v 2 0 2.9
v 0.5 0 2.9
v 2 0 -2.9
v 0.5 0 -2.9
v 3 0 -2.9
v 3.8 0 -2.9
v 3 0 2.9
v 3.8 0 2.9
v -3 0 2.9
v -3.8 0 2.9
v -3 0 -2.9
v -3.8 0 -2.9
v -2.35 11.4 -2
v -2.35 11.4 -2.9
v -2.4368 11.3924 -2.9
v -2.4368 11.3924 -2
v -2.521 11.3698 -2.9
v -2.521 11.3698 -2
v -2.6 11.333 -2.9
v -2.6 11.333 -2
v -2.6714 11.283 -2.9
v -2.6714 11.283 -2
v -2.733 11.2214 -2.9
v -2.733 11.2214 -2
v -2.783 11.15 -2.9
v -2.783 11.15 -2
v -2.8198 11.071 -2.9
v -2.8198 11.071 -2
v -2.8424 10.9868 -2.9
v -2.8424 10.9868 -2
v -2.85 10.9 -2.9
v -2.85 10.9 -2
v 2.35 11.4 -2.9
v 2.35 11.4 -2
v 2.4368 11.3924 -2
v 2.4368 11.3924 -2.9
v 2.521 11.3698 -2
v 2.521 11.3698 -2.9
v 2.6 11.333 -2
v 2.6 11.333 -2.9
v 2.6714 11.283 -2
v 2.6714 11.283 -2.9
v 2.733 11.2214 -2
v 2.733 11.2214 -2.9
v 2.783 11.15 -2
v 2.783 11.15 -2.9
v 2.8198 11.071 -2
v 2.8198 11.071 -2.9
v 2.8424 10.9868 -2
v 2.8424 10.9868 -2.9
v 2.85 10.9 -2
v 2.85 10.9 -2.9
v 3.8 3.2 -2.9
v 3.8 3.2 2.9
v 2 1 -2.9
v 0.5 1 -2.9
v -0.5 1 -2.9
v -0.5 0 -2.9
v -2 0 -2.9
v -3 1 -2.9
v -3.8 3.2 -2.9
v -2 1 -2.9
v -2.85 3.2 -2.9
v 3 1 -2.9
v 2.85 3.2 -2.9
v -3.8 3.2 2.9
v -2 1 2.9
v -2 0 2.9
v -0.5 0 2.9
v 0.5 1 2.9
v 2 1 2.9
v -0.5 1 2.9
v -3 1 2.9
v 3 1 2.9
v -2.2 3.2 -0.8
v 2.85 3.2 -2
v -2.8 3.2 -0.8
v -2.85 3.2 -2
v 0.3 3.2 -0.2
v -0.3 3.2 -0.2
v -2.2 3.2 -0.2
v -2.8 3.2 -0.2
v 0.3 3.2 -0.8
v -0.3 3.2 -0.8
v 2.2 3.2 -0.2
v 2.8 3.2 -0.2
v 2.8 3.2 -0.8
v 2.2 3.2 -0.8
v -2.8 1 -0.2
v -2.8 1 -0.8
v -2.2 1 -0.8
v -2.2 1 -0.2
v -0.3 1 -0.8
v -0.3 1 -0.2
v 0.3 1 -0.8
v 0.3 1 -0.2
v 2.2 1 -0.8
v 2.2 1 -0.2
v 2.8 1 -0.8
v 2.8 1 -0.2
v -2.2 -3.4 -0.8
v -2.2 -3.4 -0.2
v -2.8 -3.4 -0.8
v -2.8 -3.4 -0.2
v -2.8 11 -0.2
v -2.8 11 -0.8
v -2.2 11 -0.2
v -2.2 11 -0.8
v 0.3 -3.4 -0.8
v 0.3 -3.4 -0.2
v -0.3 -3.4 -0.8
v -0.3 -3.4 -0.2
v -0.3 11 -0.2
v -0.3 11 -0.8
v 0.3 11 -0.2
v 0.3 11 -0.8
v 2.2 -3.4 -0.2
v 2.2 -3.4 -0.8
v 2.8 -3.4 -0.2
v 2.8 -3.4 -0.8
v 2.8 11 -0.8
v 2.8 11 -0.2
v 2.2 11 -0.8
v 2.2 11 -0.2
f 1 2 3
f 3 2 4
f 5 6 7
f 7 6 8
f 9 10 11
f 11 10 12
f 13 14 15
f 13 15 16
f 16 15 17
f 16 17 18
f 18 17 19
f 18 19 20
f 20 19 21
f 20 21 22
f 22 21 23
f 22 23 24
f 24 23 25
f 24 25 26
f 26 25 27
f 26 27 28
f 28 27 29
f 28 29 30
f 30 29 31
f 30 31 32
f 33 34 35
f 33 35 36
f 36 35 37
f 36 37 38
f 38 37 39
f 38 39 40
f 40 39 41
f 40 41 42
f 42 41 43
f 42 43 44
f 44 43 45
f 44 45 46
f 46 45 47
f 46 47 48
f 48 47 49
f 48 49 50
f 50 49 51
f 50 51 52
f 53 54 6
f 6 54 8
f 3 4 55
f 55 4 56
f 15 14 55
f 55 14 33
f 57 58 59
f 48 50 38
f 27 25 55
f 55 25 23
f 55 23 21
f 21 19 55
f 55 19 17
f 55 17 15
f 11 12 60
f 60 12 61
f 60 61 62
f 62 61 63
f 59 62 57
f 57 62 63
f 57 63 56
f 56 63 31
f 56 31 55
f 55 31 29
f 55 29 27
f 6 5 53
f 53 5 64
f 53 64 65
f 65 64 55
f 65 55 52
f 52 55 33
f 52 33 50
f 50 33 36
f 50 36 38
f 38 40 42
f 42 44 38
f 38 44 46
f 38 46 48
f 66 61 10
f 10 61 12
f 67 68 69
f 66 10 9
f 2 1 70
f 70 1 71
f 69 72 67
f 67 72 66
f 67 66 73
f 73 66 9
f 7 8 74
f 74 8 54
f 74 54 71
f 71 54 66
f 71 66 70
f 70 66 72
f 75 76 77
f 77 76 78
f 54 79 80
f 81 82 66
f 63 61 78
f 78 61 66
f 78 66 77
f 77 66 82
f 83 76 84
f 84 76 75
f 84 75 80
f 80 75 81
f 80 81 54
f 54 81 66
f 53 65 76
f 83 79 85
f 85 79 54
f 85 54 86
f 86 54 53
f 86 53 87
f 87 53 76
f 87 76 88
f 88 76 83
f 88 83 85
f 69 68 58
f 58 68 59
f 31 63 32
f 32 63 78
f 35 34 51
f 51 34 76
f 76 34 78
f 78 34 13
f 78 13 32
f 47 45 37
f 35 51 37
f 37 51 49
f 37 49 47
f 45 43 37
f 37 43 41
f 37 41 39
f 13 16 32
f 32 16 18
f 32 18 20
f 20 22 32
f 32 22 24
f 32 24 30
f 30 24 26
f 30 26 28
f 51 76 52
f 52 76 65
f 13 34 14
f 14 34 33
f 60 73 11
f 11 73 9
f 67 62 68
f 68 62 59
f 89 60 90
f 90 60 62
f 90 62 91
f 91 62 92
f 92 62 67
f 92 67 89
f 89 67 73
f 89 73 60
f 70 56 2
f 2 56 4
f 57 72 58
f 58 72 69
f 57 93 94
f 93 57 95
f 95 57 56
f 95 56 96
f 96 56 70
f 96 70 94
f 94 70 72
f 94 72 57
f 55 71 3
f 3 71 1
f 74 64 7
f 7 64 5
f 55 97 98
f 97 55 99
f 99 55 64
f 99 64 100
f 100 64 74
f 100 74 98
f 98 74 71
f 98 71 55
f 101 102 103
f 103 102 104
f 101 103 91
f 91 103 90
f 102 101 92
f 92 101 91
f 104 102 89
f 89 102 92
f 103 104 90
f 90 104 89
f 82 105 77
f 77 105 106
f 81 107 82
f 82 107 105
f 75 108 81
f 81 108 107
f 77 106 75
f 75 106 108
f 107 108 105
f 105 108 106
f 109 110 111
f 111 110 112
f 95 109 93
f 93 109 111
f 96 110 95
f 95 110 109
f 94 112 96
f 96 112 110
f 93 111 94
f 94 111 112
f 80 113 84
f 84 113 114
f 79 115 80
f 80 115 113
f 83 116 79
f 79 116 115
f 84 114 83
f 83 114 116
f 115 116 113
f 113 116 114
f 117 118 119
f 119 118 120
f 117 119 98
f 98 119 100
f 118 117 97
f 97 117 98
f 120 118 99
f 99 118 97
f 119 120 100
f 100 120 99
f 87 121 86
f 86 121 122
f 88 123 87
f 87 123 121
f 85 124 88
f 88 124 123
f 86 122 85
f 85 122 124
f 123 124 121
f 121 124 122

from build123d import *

# Parameters (mm, degrees)
CROQUIS1_W                   = 7.6
CROQUIS1_H                   = 5.8
SALIENTE_EXTRUIR1_DEPTH      = 3.2
CROQUIS2_W                   = 5.7
CROQUIS2_H                   = 0.9
SALIENTE_EXTRUIR2_DEPTH      = 8.2
REDONDEO2_R                  = 0.5
REDONDEO3_R                  = 0.5
CROQUIS3_W                   = 1
CROQUIS3_H                   = 5.8
CORTAR_EXTRUIR1_DEPTH        = 1
SALIENTE_EXTRUIR3_DEPTH      = 4.4
SALIENTE_EXTRUIR3_DEPTH_BACK = 10
CROQUIS4_W                   = 0.6
CROQUIS4_H                   = 0.6


with BuildPart() as part:
    # Croquis1 → Saliente-Extruir1 (new body)
    with BuildSketch(Plane(origin=(0, 0, 0), x_dir=(1, 0, 0), z_dir=(0, 1, 0))):
        Rectangle(CROQUIS1_W, CROQUIS1_H)
    extrude(amount=SALIENTE_EXTRUIR1_DEPTH)

    # Croquis2 → Saliente-Extruir2 (add)
    with BuildSketch(Plane(origin=(0, 3.2, 0), x_dir=(1, 0, 0), z_dir=(0, 1, 0))):
        with Locations((0, 2.45)):
            Rectangle(CROQUIS2_W, CROQUIS2_H)
    extrude(amount=SALIENTE_EXTRUIR2_DEPTH)

    # Redondeo2
    redondeo2_edges = [part.edges().sort_by_distance(p)[0] for p in [
        (2.85, 11.4, -2.45),
    ]]
    fillet(redondeo2_edges, radius=REDONDEO2_R)

    # Redondeo3
    redondeo3_edges = [part.edges().sort_by_distance(p)[0] for p in [
        (-2.85, 11.4, -2.45),
    ]]
    fillet(redondeo3_edges, radius=REDONDEO3_R)

    # Croquis3 → Cortar-Extruir1 (cut)
    with BuildSketch(Plane.XZ):
        with Locations((-2.5, 0)):
            Rectangle(CROQUIS3_W, CROQUIS3_H)
        Rectangle(CROQUIS3_W, CROQUIS3_H)
        with Locations((2.5, 0)):
            Rectangle(CROQUIS3_W, CROQUIS3_H)
    extrude(amount=-CORTAR_EXTRUIR1_DEPTH, mode=Mode.SUBTRACT)

    # Croquis4 → Saliente-Extruir3 (add, two sides: drawn at the far end of the back side and taken through both)
    with BuildSketch(Plane.XZ.offset(-1).offset(-SALIENTE_EXTRUIR3_DEPTH_BACK)):
        with Locations((-2.5, -0.5)):
            Rectangle(CROQUIS4_W, CROQUIS4_H)
        with Locations((0, -0.5)):
            Rectangle(CROQUIS4_W, CROQUIS4_H)
        with Locations((2.5, -0.5)):
            Rectangle(CROQUIS4_W, CROQUIS4_H)
    extrude(amount=SALIENTE_EXTRUIR3_DEPTH + SALIENTE_EXTRUIR3_DEPTH_BACK)


solid = part.part
